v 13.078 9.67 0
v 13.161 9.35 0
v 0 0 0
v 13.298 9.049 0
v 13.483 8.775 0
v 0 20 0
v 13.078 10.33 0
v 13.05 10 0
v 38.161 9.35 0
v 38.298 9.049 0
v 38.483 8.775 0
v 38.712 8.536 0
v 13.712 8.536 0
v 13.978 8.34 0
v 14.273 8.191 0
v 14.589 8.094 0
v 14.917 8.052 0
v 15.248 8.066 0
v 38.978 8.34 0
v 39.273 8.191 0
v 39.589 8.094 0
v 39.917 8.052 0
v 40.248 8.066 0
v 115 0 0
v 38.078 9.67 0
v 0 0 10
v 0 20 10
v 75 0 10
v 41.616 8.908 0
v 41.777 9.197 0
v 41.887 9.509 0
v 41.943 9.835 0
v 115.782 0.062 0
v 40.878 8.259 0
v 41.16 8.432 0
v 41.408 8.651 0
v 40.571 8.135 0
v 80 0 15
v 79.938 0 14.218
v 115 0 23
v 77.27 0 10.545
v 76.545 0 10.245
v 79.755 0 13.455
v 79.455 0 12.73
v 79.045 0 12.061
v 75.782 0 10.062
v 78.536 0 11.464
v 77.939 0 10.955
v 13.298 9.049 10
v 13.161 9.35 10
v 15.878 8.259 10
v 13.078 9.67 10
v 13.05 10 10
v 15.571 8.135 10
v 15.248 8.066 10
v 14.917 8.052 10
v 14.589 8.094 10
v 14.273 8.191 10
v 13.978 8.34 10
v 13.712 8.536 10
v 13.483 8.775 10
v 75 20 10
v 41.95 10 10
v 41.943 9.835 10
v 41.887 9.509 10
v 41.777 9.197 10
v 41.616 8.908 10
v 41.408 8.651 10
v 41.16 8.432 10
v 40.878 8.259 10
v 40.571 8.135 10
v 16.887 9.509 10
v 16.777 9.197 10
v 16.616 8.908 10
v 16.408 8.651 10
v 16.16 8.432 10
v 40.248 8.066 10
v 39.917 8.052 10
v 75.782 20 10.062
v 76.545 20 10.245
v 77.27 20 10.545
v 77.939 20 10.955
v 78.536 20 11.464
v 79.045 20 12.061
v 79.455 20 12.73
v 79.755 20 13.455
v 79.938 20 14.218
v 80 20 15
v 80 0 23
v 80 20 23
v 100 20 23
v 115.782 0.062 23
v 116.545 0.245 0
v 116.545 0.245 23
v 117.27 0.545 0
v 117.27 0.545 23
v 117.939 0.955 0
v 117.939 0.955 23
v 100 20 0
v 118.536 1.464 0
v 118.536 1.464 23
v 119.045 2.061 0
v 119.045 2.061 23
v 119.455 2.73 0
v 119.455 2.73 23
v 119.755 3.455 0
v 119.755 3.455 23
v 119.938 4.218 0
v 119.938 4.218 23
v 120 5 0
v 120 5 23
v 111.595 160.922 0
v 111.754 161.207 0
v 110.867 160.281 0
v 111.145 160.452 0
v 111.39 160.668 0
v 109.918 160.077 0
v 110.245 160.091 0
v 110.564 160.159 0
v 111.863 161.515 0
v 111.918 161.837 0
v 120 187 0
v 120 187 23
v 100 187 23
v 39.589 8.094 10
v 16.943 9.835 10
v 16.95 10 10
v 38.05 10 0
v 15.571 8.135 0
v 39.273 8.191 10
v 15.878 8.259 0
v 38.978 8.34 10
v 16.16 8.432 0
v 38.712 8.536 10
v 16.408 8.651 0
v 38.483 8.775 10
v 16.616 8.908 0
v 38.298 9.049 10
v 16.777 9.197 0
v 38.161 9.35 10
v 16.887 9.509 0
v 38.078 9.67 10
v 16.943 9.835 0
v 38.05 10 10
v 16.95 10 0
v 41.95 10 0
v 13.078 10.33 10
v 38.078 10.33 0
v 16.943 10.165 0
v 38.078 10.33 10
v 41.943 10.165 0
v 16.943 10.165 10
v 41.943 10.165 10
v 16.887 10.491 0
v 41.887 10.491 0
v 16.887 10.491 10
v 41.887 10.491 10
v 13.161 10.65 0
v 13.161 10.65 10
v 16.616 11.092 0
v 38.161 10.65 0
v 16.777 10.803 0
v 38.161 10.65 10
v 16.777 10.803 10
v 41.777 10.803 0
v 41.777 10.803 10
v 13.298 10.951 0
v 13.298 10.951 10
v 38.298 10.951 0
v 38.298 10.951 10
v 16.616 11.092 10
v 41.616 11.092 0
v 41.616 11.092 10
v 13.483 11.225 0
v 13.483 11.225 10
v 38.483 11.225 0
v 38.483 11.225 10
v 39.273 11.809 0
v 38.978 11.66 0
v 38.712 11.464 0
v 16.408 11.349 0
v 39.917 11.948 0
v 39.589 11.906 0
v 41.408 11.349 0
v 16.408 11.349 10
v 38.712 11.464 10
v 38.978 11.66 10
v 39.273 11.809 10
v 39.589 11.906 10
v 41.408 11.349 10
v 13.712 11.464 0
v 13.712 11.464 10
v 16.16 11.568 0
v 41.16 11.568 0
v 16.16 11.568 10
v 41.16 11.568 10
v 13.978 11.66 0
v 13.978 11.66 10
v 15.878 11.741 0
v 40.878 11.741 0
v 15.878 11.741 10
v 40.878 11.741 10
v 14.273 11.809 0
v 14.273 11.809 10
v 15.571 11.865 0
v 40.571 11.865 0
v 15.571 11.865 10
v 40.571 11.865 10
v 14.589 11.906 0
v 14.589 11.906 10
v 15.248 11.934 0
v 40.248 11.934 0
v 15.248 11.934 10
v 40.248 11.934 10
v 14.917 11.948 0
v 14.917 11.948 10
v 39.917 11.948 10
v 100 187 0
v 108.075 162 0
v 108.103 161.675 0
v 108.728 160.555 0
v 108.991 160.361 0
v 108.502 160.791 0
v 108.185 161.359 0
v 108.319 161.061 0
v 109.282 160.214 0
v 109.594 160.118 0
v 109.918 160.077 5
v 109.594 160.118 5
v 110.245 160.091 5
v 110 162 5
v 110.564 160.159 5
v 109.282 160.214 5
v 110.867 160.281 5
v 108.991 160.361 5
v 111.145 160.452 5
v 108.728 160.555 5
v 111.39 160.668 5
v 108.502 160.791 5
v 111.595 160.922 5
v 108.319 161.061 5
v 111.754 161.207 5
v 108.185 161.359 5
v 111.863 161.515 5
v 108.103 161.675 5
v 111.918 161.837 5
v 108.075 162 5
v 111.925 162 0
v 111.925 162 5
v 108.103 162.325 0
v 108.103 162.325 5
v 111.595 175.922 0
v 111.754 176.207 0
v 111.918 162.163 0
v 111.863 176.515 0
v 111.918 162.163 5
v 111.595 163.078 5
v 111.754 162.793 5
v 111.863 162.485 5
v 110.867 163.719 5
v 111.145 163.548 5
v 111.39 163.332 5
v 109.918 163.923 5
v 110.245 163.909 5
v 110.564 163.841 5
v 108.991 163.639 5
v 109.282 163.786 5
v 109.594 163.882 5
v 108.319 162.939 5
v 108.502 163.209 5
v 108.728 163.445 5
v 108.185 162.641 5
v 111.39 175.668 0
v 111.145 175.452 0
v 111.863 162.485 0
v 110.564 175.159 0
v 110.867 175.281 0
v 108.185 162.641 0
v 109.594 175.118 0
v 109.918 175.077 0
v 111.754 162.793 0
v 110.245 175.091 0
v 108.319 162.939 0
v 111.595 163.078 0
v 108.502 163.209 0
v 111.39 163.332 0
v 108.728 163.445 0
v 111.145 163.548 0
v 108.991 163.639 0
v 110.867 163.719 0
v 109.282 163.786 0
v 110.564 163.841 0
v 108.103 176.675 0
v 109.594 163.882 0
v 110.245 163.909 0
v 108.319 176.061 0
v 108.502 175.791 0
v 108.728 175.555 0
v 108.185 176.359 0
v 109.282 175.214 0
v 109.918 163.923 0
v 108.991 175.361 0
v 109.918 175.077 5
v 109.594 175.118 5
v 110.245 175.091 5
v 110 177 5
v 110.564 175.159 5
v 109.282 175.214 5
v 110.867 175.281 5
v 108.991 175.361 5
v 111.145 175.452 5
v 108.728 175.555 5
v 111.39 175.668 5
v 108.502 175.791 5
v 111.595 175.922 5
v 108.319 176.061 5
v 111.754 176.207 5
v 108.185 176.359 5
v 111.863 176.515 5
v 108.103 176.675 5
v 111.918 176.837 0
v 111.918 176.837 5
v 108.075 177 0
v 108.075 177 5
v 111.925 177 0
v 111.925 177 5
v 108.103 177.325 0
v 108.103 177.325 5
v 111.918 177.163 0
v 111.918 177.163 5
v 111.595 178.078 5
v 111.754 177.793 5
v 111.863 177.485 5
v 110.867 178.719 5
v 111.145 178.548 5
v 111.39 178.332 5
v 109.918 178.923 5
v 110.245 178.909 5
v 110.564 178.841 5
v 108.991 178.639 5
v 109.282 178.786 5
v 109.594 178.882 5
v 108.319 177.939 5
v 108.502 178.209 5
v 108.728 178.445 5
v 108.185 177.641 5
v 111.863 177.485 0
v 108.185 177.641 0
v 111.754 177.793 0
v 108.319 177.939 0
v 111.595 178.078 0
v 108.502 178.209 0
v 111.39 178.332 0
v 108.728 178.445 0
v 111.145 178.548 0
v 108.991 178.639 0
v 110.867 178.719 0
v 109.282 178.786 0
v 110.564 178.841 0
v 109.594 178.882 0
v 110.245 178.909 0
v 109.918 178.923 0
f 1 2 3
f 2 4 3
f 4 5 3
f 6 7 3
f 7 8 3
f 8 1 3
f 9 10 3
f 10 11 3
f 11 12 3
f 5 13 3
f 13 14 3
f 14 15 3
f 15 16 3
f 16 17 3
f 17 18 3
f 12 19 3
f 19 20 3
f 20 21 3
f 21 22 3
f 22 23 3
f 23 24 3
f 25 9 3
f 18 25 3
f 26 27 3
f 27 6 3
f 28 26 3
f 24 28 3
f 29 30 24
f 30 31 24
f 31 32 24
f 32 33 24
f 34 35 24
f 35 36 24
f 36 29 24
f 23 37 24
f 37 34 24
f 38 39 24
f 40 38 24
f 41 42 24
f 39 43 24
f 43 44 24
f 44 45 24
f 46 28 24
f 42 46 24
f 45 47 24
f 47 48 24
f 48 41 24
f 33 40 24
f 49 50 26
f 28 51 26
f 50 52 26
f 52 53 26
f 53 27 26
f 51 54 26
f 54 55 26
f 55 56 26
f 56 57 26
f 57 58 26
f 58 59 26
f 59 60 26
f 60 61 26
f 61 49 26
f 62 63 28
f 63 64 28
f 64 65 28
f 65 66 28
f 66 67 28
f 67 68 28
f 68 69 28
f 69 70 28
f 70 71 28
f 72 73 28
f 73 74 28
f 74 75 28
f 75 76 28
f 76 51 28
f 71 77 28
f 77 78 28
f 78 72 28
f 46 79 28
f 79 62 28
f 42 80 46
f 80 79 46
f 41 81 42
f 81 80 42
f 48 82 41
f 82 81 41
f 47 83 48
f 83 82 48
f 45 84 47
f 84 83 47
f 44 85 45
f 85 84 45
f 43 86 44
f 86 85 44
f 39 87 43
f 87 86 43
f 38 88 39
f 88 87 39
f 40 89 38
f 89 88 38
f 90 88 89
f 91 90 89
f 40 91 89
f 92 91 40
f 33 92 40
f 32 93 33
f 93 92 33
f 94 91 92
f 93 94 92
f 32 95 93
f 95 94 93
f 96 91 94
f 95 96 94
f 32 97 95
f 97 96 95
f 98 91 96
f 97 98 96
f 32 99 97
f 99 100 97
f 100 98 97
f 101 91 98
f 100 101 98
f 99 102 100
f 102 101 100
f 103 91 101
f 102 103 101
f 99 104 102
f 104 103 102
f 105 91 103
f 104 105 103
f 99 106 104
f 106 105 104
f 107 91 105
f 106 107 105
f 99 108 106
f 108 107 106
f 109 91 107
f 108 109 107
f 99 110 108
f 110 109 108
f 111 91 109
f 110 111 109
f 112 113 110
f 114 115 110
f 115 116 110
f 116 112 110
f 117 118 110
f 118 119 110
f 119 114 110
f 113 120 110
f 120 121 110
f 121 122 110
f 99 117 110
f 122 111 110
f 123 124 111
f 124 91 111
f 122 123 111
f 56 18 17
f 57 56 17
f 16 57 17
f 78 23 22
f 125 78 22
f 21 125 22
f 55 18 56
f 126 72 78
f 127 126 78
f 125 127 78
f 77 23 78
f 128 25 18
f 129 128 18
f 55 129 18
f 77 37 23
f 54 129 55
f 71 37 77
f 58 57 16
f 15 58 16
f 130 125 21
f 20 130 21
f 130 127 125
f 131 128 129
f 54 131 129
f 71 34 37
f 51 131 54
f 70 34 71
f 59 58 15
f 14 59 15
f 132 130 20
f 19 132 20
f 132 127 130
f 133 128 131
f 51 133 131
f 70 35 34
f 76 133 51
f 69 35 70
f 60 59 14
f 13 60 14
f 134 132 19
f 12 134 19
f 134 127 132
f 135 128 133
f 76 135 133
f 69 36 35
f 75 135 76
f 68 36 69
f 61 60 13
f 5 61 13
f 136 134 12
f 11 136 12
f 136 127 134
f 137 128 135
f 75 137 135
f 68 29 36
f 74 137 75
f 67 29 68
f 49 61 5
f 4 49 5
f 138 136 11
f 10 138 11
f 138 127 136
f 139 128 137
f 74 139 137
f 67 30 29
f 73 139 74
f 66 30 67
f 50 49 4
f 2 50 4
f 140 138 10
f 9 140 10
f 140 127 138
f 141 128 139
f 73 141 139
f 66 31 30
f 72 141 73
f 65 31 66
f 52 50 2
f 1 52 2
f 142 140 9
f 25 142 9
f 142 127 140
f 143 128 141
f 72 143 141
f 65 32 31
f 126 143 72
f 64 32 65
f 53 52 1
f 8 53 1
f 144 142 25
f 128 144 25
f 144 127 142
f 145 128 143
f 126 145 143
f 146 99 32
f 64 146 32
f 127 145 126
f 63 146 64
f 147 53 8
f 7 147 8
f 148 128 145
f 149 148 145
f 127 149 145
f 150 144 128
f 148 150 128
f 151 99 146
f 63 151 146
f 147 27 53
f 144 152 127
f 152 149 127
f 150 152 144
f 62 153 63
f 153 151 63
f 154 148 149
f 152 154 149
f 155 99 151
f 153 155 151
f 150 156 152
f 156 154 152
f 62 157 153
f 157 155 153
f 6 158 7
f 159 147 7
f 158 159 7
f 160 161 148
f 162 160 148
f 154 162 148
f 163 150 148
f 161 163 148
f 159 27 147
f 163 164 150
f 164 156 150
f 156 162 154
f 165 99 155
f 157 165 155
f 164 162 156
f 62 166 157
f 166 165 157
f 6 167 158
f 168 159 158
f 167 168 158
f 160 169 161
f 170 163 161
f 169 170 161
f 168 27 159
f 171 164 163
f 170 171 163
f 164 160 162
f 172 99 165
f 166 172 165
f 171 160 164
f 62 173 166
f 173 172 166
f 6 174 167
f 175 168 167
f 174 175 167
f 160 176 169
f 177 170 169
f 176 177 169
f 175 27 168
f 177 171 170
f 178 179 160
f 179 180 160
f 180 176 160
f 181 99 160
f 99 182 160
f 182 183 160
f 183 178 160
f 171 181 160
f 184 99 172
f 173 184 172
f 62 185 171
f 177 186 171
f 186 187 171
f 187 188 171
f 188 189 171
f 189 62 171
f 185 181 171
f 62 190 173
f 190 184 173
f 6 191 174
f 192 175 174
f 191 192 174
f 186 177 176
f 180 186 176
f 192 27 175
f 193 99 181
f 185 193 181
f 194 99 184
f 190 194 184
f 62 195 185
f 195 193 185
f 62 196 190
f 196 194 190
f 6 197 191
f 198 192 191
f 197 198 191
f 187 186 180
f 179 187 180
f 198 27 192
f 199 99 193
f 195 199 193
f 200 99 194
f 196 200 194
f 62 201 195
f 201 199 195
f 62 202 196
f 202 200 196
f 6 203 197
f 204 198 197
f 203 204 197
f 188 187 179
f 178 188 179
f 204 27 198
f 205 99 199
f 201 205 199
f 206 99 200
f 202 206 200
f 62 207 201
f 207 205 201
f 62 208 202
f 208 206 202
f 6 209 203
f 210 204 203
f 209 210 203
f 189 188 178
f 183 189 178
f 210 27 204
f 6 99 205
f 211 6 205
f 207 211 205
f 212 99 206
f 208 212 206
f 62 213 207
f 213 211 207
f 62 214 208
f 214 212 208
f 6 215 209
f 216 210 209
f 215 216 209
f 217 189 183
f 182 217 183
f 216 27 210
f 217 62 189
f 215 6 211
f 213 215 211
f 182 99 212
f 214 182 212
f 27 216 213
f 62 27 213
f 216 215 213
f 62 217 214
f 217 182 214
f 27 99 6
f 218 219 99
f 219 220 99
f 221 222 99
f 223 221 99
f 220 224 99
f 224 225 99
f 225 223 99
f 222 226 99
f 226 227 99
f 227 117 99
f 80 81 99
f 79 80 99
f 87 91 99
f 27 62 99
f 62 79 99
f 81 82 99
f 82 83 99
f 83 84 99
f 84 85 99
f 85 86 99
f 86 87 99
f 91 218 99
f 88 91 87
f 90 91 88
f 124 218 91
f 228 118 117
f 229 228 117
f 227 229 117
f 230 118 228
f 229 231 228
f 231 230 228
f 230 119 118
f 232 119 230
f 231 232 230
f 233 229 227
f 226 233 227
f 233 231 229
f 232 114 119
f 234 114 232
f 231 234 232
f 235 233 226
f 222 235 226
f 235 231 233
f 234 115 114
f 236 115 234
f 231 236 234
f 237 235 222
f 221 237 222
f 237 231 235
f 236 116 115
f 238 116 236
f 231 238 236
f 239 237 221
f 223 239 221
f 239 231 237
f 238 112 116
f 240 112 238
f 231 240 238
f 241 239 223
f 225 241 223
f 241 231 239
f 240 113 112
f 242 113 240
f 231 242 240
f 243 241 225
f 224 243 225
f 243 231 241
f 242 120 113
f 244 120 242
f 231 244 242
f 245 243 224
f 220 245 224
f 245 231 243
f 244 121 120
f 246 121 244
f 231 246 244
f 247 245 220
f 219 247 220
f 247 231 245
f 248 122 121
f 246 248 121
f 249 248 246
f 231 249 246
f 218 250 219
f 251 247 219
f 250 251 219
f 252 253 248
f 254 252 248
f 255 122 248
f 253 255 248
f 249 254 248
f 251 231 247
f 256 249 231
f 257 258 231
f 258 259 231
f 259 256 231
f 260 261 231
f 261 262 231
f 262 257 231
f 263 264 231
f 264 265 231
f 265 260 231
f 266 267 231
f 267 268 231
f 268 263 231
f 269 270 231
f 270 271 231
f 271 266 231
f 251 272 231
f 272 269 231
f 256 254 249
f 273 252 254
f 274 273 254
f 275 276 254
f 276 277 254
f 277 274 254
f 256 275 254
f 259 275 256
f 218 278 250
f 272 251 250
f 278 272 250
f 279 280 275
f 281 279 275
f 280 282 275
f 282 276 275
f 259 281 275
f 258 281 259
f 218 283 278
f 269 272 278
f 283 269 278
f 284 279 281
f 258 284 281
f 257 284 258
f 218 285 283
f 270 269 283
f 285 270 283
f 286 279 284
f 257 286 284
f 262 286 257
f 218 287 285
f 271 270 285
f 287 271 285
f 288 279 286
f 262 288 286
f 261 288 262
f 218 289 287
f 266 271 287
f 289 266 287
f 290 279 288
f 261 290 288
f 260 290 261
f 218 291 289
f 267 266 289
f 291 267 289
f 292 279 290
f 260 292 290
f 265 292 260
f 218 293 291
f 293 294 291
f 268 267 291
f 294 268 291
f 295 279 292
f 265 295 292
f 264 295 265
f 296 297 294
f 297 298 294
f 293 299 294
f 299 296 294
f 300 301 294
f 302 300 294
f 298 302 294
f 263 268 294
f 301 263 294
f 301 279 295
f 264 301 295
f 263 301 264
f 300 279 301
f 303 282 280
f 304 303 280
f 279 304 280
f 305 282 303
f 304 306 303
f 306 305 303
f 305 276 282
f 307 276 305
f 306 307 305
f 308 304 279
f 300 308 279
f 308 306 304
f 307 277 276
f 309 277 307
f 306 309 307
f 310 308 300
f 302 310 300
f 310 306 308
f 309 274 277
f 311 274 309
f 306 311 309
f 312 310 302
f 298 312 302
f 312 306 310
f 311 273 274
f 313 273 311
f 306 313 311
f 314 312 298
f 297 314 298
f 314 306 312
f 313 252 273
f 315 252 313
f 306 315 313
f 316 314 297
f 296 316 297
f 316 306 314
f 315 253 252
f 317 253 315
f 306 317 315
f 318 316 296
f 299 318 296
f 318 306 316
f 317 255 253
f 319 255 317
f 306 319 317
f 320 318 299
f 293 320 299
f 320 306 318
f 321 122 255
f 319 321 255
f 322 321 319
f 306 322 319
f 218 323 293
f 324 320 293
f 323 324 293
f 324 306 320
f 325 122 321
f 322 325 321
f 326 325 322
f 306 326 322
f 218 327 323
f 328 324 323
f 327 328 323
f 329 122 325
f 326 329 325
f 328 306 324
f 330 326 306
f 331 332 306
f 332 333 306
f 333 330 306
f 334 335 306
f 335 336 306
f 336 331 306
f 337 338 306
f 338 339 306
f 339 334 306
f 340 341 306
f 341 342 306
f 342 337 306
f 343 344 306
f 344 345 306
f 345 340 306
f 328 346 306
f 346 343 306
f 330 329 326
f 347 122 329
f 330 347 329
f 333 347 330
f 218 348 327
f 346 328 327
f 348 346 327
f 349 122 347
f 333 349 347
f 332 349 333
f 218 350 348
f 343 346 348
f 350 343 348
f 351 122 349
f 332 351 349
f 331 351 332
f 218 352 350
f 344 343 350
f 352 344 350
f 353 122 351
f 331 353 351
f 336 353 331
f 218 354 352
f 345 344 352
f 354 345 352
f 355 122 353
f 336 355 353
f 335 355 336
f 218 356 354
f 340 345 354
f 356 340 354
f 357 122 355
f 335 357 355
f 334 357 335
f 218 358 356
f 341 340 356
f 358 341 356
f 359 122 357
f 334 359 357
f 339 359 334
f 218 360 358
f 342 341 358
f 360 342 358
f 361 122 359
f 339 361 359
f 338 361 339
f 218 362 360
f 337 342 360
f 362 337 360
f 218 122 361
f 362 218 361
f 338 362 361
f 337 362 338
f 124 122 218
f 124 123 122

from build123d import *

# Parameters (mm, degrees)
SKETCH_1_W          = 100
SKETCH_1_H          = 20
SKETCH_1_R          = 1.95
EXTRUDE_1_DEPTH     = 10
SKETCH_2_W          = 20
SKETCH_2_H          = 20
EXTRUDE_2_DEPTH     = 13
SKETCH_4_W          = 20
SKETCH_4_H          = 23
EXTRUDE_3_DEPTH     = 187
FILLET_2_R          = 5
FILLET_3_R          = 5
SKETCH_5_R          = 1.925
CUT_EXTRUDE_1_DEPTH = 5


with BuildPart() as part:
    # 草圖1 → 填料-伸長1 (new body)
    with BuildSketch(Plane.XY):
        with Locations((50, 10)):
            Rectangle(SKETCH_1_W, SKETCH_1_H)
        with Locations((15, 10)):
            Circle(SKETCH_1_R, mode=Mode.SUBTRACT)
        with Locations((40, 10)):
            Circle(SKETCH_1_R, mode=Mode.SUBTRACT)
    extrude(amount=EXTRUDE_1_DEPTH)

    # 草圖2 → 填料-伸長2 (add)
    with BuildSketch(Plane.XY.offset(10)):
        with Locations((90, 10)):
            Rectangle(SKETCH_2_W, SKETCH_2_H)
    extrude(amount=EXTRUDE_2_DEPTH)

    # 草圖4 → 填料-伸長3 (add)
    with BuildSketch(Plane.XZ):
        with Locations((110, 11.5)):
            Rectangle(SKETCH_4_W, SKETCH_4_H)
    extrude(amount=-EXTRUDE_3_DEPTH)

    # 圓角2
    fillet_2_edges = [part.edges().sort_by_distance(p)[0] for p in [
        (80, 10, 10),
    ]]
    fillet(fillet_2_edges, radius=FILLET_2_R)

    # 圓角3
    fillet_3_edges = [part.edges().sort_by_distance(p)[0] for p in [
        (120, 0, 11.5),
    ]]
    fillet(fillet_3_edges, radius=FILLET_3_R)

    # 草圖5 → 除料-伸長1 (cut)
    with BuildSketch(Plane.XY):
        with Locations((110, 177)):
            Circle(SKETCH_5_R)
        with Locations((110, 162)):
            Circle(SKETCH_5_R)
    extrude(amount=CUT_EXTRUDE_1_DEPTH, mode=Mode.SUBTRACT)


solid = part.part
